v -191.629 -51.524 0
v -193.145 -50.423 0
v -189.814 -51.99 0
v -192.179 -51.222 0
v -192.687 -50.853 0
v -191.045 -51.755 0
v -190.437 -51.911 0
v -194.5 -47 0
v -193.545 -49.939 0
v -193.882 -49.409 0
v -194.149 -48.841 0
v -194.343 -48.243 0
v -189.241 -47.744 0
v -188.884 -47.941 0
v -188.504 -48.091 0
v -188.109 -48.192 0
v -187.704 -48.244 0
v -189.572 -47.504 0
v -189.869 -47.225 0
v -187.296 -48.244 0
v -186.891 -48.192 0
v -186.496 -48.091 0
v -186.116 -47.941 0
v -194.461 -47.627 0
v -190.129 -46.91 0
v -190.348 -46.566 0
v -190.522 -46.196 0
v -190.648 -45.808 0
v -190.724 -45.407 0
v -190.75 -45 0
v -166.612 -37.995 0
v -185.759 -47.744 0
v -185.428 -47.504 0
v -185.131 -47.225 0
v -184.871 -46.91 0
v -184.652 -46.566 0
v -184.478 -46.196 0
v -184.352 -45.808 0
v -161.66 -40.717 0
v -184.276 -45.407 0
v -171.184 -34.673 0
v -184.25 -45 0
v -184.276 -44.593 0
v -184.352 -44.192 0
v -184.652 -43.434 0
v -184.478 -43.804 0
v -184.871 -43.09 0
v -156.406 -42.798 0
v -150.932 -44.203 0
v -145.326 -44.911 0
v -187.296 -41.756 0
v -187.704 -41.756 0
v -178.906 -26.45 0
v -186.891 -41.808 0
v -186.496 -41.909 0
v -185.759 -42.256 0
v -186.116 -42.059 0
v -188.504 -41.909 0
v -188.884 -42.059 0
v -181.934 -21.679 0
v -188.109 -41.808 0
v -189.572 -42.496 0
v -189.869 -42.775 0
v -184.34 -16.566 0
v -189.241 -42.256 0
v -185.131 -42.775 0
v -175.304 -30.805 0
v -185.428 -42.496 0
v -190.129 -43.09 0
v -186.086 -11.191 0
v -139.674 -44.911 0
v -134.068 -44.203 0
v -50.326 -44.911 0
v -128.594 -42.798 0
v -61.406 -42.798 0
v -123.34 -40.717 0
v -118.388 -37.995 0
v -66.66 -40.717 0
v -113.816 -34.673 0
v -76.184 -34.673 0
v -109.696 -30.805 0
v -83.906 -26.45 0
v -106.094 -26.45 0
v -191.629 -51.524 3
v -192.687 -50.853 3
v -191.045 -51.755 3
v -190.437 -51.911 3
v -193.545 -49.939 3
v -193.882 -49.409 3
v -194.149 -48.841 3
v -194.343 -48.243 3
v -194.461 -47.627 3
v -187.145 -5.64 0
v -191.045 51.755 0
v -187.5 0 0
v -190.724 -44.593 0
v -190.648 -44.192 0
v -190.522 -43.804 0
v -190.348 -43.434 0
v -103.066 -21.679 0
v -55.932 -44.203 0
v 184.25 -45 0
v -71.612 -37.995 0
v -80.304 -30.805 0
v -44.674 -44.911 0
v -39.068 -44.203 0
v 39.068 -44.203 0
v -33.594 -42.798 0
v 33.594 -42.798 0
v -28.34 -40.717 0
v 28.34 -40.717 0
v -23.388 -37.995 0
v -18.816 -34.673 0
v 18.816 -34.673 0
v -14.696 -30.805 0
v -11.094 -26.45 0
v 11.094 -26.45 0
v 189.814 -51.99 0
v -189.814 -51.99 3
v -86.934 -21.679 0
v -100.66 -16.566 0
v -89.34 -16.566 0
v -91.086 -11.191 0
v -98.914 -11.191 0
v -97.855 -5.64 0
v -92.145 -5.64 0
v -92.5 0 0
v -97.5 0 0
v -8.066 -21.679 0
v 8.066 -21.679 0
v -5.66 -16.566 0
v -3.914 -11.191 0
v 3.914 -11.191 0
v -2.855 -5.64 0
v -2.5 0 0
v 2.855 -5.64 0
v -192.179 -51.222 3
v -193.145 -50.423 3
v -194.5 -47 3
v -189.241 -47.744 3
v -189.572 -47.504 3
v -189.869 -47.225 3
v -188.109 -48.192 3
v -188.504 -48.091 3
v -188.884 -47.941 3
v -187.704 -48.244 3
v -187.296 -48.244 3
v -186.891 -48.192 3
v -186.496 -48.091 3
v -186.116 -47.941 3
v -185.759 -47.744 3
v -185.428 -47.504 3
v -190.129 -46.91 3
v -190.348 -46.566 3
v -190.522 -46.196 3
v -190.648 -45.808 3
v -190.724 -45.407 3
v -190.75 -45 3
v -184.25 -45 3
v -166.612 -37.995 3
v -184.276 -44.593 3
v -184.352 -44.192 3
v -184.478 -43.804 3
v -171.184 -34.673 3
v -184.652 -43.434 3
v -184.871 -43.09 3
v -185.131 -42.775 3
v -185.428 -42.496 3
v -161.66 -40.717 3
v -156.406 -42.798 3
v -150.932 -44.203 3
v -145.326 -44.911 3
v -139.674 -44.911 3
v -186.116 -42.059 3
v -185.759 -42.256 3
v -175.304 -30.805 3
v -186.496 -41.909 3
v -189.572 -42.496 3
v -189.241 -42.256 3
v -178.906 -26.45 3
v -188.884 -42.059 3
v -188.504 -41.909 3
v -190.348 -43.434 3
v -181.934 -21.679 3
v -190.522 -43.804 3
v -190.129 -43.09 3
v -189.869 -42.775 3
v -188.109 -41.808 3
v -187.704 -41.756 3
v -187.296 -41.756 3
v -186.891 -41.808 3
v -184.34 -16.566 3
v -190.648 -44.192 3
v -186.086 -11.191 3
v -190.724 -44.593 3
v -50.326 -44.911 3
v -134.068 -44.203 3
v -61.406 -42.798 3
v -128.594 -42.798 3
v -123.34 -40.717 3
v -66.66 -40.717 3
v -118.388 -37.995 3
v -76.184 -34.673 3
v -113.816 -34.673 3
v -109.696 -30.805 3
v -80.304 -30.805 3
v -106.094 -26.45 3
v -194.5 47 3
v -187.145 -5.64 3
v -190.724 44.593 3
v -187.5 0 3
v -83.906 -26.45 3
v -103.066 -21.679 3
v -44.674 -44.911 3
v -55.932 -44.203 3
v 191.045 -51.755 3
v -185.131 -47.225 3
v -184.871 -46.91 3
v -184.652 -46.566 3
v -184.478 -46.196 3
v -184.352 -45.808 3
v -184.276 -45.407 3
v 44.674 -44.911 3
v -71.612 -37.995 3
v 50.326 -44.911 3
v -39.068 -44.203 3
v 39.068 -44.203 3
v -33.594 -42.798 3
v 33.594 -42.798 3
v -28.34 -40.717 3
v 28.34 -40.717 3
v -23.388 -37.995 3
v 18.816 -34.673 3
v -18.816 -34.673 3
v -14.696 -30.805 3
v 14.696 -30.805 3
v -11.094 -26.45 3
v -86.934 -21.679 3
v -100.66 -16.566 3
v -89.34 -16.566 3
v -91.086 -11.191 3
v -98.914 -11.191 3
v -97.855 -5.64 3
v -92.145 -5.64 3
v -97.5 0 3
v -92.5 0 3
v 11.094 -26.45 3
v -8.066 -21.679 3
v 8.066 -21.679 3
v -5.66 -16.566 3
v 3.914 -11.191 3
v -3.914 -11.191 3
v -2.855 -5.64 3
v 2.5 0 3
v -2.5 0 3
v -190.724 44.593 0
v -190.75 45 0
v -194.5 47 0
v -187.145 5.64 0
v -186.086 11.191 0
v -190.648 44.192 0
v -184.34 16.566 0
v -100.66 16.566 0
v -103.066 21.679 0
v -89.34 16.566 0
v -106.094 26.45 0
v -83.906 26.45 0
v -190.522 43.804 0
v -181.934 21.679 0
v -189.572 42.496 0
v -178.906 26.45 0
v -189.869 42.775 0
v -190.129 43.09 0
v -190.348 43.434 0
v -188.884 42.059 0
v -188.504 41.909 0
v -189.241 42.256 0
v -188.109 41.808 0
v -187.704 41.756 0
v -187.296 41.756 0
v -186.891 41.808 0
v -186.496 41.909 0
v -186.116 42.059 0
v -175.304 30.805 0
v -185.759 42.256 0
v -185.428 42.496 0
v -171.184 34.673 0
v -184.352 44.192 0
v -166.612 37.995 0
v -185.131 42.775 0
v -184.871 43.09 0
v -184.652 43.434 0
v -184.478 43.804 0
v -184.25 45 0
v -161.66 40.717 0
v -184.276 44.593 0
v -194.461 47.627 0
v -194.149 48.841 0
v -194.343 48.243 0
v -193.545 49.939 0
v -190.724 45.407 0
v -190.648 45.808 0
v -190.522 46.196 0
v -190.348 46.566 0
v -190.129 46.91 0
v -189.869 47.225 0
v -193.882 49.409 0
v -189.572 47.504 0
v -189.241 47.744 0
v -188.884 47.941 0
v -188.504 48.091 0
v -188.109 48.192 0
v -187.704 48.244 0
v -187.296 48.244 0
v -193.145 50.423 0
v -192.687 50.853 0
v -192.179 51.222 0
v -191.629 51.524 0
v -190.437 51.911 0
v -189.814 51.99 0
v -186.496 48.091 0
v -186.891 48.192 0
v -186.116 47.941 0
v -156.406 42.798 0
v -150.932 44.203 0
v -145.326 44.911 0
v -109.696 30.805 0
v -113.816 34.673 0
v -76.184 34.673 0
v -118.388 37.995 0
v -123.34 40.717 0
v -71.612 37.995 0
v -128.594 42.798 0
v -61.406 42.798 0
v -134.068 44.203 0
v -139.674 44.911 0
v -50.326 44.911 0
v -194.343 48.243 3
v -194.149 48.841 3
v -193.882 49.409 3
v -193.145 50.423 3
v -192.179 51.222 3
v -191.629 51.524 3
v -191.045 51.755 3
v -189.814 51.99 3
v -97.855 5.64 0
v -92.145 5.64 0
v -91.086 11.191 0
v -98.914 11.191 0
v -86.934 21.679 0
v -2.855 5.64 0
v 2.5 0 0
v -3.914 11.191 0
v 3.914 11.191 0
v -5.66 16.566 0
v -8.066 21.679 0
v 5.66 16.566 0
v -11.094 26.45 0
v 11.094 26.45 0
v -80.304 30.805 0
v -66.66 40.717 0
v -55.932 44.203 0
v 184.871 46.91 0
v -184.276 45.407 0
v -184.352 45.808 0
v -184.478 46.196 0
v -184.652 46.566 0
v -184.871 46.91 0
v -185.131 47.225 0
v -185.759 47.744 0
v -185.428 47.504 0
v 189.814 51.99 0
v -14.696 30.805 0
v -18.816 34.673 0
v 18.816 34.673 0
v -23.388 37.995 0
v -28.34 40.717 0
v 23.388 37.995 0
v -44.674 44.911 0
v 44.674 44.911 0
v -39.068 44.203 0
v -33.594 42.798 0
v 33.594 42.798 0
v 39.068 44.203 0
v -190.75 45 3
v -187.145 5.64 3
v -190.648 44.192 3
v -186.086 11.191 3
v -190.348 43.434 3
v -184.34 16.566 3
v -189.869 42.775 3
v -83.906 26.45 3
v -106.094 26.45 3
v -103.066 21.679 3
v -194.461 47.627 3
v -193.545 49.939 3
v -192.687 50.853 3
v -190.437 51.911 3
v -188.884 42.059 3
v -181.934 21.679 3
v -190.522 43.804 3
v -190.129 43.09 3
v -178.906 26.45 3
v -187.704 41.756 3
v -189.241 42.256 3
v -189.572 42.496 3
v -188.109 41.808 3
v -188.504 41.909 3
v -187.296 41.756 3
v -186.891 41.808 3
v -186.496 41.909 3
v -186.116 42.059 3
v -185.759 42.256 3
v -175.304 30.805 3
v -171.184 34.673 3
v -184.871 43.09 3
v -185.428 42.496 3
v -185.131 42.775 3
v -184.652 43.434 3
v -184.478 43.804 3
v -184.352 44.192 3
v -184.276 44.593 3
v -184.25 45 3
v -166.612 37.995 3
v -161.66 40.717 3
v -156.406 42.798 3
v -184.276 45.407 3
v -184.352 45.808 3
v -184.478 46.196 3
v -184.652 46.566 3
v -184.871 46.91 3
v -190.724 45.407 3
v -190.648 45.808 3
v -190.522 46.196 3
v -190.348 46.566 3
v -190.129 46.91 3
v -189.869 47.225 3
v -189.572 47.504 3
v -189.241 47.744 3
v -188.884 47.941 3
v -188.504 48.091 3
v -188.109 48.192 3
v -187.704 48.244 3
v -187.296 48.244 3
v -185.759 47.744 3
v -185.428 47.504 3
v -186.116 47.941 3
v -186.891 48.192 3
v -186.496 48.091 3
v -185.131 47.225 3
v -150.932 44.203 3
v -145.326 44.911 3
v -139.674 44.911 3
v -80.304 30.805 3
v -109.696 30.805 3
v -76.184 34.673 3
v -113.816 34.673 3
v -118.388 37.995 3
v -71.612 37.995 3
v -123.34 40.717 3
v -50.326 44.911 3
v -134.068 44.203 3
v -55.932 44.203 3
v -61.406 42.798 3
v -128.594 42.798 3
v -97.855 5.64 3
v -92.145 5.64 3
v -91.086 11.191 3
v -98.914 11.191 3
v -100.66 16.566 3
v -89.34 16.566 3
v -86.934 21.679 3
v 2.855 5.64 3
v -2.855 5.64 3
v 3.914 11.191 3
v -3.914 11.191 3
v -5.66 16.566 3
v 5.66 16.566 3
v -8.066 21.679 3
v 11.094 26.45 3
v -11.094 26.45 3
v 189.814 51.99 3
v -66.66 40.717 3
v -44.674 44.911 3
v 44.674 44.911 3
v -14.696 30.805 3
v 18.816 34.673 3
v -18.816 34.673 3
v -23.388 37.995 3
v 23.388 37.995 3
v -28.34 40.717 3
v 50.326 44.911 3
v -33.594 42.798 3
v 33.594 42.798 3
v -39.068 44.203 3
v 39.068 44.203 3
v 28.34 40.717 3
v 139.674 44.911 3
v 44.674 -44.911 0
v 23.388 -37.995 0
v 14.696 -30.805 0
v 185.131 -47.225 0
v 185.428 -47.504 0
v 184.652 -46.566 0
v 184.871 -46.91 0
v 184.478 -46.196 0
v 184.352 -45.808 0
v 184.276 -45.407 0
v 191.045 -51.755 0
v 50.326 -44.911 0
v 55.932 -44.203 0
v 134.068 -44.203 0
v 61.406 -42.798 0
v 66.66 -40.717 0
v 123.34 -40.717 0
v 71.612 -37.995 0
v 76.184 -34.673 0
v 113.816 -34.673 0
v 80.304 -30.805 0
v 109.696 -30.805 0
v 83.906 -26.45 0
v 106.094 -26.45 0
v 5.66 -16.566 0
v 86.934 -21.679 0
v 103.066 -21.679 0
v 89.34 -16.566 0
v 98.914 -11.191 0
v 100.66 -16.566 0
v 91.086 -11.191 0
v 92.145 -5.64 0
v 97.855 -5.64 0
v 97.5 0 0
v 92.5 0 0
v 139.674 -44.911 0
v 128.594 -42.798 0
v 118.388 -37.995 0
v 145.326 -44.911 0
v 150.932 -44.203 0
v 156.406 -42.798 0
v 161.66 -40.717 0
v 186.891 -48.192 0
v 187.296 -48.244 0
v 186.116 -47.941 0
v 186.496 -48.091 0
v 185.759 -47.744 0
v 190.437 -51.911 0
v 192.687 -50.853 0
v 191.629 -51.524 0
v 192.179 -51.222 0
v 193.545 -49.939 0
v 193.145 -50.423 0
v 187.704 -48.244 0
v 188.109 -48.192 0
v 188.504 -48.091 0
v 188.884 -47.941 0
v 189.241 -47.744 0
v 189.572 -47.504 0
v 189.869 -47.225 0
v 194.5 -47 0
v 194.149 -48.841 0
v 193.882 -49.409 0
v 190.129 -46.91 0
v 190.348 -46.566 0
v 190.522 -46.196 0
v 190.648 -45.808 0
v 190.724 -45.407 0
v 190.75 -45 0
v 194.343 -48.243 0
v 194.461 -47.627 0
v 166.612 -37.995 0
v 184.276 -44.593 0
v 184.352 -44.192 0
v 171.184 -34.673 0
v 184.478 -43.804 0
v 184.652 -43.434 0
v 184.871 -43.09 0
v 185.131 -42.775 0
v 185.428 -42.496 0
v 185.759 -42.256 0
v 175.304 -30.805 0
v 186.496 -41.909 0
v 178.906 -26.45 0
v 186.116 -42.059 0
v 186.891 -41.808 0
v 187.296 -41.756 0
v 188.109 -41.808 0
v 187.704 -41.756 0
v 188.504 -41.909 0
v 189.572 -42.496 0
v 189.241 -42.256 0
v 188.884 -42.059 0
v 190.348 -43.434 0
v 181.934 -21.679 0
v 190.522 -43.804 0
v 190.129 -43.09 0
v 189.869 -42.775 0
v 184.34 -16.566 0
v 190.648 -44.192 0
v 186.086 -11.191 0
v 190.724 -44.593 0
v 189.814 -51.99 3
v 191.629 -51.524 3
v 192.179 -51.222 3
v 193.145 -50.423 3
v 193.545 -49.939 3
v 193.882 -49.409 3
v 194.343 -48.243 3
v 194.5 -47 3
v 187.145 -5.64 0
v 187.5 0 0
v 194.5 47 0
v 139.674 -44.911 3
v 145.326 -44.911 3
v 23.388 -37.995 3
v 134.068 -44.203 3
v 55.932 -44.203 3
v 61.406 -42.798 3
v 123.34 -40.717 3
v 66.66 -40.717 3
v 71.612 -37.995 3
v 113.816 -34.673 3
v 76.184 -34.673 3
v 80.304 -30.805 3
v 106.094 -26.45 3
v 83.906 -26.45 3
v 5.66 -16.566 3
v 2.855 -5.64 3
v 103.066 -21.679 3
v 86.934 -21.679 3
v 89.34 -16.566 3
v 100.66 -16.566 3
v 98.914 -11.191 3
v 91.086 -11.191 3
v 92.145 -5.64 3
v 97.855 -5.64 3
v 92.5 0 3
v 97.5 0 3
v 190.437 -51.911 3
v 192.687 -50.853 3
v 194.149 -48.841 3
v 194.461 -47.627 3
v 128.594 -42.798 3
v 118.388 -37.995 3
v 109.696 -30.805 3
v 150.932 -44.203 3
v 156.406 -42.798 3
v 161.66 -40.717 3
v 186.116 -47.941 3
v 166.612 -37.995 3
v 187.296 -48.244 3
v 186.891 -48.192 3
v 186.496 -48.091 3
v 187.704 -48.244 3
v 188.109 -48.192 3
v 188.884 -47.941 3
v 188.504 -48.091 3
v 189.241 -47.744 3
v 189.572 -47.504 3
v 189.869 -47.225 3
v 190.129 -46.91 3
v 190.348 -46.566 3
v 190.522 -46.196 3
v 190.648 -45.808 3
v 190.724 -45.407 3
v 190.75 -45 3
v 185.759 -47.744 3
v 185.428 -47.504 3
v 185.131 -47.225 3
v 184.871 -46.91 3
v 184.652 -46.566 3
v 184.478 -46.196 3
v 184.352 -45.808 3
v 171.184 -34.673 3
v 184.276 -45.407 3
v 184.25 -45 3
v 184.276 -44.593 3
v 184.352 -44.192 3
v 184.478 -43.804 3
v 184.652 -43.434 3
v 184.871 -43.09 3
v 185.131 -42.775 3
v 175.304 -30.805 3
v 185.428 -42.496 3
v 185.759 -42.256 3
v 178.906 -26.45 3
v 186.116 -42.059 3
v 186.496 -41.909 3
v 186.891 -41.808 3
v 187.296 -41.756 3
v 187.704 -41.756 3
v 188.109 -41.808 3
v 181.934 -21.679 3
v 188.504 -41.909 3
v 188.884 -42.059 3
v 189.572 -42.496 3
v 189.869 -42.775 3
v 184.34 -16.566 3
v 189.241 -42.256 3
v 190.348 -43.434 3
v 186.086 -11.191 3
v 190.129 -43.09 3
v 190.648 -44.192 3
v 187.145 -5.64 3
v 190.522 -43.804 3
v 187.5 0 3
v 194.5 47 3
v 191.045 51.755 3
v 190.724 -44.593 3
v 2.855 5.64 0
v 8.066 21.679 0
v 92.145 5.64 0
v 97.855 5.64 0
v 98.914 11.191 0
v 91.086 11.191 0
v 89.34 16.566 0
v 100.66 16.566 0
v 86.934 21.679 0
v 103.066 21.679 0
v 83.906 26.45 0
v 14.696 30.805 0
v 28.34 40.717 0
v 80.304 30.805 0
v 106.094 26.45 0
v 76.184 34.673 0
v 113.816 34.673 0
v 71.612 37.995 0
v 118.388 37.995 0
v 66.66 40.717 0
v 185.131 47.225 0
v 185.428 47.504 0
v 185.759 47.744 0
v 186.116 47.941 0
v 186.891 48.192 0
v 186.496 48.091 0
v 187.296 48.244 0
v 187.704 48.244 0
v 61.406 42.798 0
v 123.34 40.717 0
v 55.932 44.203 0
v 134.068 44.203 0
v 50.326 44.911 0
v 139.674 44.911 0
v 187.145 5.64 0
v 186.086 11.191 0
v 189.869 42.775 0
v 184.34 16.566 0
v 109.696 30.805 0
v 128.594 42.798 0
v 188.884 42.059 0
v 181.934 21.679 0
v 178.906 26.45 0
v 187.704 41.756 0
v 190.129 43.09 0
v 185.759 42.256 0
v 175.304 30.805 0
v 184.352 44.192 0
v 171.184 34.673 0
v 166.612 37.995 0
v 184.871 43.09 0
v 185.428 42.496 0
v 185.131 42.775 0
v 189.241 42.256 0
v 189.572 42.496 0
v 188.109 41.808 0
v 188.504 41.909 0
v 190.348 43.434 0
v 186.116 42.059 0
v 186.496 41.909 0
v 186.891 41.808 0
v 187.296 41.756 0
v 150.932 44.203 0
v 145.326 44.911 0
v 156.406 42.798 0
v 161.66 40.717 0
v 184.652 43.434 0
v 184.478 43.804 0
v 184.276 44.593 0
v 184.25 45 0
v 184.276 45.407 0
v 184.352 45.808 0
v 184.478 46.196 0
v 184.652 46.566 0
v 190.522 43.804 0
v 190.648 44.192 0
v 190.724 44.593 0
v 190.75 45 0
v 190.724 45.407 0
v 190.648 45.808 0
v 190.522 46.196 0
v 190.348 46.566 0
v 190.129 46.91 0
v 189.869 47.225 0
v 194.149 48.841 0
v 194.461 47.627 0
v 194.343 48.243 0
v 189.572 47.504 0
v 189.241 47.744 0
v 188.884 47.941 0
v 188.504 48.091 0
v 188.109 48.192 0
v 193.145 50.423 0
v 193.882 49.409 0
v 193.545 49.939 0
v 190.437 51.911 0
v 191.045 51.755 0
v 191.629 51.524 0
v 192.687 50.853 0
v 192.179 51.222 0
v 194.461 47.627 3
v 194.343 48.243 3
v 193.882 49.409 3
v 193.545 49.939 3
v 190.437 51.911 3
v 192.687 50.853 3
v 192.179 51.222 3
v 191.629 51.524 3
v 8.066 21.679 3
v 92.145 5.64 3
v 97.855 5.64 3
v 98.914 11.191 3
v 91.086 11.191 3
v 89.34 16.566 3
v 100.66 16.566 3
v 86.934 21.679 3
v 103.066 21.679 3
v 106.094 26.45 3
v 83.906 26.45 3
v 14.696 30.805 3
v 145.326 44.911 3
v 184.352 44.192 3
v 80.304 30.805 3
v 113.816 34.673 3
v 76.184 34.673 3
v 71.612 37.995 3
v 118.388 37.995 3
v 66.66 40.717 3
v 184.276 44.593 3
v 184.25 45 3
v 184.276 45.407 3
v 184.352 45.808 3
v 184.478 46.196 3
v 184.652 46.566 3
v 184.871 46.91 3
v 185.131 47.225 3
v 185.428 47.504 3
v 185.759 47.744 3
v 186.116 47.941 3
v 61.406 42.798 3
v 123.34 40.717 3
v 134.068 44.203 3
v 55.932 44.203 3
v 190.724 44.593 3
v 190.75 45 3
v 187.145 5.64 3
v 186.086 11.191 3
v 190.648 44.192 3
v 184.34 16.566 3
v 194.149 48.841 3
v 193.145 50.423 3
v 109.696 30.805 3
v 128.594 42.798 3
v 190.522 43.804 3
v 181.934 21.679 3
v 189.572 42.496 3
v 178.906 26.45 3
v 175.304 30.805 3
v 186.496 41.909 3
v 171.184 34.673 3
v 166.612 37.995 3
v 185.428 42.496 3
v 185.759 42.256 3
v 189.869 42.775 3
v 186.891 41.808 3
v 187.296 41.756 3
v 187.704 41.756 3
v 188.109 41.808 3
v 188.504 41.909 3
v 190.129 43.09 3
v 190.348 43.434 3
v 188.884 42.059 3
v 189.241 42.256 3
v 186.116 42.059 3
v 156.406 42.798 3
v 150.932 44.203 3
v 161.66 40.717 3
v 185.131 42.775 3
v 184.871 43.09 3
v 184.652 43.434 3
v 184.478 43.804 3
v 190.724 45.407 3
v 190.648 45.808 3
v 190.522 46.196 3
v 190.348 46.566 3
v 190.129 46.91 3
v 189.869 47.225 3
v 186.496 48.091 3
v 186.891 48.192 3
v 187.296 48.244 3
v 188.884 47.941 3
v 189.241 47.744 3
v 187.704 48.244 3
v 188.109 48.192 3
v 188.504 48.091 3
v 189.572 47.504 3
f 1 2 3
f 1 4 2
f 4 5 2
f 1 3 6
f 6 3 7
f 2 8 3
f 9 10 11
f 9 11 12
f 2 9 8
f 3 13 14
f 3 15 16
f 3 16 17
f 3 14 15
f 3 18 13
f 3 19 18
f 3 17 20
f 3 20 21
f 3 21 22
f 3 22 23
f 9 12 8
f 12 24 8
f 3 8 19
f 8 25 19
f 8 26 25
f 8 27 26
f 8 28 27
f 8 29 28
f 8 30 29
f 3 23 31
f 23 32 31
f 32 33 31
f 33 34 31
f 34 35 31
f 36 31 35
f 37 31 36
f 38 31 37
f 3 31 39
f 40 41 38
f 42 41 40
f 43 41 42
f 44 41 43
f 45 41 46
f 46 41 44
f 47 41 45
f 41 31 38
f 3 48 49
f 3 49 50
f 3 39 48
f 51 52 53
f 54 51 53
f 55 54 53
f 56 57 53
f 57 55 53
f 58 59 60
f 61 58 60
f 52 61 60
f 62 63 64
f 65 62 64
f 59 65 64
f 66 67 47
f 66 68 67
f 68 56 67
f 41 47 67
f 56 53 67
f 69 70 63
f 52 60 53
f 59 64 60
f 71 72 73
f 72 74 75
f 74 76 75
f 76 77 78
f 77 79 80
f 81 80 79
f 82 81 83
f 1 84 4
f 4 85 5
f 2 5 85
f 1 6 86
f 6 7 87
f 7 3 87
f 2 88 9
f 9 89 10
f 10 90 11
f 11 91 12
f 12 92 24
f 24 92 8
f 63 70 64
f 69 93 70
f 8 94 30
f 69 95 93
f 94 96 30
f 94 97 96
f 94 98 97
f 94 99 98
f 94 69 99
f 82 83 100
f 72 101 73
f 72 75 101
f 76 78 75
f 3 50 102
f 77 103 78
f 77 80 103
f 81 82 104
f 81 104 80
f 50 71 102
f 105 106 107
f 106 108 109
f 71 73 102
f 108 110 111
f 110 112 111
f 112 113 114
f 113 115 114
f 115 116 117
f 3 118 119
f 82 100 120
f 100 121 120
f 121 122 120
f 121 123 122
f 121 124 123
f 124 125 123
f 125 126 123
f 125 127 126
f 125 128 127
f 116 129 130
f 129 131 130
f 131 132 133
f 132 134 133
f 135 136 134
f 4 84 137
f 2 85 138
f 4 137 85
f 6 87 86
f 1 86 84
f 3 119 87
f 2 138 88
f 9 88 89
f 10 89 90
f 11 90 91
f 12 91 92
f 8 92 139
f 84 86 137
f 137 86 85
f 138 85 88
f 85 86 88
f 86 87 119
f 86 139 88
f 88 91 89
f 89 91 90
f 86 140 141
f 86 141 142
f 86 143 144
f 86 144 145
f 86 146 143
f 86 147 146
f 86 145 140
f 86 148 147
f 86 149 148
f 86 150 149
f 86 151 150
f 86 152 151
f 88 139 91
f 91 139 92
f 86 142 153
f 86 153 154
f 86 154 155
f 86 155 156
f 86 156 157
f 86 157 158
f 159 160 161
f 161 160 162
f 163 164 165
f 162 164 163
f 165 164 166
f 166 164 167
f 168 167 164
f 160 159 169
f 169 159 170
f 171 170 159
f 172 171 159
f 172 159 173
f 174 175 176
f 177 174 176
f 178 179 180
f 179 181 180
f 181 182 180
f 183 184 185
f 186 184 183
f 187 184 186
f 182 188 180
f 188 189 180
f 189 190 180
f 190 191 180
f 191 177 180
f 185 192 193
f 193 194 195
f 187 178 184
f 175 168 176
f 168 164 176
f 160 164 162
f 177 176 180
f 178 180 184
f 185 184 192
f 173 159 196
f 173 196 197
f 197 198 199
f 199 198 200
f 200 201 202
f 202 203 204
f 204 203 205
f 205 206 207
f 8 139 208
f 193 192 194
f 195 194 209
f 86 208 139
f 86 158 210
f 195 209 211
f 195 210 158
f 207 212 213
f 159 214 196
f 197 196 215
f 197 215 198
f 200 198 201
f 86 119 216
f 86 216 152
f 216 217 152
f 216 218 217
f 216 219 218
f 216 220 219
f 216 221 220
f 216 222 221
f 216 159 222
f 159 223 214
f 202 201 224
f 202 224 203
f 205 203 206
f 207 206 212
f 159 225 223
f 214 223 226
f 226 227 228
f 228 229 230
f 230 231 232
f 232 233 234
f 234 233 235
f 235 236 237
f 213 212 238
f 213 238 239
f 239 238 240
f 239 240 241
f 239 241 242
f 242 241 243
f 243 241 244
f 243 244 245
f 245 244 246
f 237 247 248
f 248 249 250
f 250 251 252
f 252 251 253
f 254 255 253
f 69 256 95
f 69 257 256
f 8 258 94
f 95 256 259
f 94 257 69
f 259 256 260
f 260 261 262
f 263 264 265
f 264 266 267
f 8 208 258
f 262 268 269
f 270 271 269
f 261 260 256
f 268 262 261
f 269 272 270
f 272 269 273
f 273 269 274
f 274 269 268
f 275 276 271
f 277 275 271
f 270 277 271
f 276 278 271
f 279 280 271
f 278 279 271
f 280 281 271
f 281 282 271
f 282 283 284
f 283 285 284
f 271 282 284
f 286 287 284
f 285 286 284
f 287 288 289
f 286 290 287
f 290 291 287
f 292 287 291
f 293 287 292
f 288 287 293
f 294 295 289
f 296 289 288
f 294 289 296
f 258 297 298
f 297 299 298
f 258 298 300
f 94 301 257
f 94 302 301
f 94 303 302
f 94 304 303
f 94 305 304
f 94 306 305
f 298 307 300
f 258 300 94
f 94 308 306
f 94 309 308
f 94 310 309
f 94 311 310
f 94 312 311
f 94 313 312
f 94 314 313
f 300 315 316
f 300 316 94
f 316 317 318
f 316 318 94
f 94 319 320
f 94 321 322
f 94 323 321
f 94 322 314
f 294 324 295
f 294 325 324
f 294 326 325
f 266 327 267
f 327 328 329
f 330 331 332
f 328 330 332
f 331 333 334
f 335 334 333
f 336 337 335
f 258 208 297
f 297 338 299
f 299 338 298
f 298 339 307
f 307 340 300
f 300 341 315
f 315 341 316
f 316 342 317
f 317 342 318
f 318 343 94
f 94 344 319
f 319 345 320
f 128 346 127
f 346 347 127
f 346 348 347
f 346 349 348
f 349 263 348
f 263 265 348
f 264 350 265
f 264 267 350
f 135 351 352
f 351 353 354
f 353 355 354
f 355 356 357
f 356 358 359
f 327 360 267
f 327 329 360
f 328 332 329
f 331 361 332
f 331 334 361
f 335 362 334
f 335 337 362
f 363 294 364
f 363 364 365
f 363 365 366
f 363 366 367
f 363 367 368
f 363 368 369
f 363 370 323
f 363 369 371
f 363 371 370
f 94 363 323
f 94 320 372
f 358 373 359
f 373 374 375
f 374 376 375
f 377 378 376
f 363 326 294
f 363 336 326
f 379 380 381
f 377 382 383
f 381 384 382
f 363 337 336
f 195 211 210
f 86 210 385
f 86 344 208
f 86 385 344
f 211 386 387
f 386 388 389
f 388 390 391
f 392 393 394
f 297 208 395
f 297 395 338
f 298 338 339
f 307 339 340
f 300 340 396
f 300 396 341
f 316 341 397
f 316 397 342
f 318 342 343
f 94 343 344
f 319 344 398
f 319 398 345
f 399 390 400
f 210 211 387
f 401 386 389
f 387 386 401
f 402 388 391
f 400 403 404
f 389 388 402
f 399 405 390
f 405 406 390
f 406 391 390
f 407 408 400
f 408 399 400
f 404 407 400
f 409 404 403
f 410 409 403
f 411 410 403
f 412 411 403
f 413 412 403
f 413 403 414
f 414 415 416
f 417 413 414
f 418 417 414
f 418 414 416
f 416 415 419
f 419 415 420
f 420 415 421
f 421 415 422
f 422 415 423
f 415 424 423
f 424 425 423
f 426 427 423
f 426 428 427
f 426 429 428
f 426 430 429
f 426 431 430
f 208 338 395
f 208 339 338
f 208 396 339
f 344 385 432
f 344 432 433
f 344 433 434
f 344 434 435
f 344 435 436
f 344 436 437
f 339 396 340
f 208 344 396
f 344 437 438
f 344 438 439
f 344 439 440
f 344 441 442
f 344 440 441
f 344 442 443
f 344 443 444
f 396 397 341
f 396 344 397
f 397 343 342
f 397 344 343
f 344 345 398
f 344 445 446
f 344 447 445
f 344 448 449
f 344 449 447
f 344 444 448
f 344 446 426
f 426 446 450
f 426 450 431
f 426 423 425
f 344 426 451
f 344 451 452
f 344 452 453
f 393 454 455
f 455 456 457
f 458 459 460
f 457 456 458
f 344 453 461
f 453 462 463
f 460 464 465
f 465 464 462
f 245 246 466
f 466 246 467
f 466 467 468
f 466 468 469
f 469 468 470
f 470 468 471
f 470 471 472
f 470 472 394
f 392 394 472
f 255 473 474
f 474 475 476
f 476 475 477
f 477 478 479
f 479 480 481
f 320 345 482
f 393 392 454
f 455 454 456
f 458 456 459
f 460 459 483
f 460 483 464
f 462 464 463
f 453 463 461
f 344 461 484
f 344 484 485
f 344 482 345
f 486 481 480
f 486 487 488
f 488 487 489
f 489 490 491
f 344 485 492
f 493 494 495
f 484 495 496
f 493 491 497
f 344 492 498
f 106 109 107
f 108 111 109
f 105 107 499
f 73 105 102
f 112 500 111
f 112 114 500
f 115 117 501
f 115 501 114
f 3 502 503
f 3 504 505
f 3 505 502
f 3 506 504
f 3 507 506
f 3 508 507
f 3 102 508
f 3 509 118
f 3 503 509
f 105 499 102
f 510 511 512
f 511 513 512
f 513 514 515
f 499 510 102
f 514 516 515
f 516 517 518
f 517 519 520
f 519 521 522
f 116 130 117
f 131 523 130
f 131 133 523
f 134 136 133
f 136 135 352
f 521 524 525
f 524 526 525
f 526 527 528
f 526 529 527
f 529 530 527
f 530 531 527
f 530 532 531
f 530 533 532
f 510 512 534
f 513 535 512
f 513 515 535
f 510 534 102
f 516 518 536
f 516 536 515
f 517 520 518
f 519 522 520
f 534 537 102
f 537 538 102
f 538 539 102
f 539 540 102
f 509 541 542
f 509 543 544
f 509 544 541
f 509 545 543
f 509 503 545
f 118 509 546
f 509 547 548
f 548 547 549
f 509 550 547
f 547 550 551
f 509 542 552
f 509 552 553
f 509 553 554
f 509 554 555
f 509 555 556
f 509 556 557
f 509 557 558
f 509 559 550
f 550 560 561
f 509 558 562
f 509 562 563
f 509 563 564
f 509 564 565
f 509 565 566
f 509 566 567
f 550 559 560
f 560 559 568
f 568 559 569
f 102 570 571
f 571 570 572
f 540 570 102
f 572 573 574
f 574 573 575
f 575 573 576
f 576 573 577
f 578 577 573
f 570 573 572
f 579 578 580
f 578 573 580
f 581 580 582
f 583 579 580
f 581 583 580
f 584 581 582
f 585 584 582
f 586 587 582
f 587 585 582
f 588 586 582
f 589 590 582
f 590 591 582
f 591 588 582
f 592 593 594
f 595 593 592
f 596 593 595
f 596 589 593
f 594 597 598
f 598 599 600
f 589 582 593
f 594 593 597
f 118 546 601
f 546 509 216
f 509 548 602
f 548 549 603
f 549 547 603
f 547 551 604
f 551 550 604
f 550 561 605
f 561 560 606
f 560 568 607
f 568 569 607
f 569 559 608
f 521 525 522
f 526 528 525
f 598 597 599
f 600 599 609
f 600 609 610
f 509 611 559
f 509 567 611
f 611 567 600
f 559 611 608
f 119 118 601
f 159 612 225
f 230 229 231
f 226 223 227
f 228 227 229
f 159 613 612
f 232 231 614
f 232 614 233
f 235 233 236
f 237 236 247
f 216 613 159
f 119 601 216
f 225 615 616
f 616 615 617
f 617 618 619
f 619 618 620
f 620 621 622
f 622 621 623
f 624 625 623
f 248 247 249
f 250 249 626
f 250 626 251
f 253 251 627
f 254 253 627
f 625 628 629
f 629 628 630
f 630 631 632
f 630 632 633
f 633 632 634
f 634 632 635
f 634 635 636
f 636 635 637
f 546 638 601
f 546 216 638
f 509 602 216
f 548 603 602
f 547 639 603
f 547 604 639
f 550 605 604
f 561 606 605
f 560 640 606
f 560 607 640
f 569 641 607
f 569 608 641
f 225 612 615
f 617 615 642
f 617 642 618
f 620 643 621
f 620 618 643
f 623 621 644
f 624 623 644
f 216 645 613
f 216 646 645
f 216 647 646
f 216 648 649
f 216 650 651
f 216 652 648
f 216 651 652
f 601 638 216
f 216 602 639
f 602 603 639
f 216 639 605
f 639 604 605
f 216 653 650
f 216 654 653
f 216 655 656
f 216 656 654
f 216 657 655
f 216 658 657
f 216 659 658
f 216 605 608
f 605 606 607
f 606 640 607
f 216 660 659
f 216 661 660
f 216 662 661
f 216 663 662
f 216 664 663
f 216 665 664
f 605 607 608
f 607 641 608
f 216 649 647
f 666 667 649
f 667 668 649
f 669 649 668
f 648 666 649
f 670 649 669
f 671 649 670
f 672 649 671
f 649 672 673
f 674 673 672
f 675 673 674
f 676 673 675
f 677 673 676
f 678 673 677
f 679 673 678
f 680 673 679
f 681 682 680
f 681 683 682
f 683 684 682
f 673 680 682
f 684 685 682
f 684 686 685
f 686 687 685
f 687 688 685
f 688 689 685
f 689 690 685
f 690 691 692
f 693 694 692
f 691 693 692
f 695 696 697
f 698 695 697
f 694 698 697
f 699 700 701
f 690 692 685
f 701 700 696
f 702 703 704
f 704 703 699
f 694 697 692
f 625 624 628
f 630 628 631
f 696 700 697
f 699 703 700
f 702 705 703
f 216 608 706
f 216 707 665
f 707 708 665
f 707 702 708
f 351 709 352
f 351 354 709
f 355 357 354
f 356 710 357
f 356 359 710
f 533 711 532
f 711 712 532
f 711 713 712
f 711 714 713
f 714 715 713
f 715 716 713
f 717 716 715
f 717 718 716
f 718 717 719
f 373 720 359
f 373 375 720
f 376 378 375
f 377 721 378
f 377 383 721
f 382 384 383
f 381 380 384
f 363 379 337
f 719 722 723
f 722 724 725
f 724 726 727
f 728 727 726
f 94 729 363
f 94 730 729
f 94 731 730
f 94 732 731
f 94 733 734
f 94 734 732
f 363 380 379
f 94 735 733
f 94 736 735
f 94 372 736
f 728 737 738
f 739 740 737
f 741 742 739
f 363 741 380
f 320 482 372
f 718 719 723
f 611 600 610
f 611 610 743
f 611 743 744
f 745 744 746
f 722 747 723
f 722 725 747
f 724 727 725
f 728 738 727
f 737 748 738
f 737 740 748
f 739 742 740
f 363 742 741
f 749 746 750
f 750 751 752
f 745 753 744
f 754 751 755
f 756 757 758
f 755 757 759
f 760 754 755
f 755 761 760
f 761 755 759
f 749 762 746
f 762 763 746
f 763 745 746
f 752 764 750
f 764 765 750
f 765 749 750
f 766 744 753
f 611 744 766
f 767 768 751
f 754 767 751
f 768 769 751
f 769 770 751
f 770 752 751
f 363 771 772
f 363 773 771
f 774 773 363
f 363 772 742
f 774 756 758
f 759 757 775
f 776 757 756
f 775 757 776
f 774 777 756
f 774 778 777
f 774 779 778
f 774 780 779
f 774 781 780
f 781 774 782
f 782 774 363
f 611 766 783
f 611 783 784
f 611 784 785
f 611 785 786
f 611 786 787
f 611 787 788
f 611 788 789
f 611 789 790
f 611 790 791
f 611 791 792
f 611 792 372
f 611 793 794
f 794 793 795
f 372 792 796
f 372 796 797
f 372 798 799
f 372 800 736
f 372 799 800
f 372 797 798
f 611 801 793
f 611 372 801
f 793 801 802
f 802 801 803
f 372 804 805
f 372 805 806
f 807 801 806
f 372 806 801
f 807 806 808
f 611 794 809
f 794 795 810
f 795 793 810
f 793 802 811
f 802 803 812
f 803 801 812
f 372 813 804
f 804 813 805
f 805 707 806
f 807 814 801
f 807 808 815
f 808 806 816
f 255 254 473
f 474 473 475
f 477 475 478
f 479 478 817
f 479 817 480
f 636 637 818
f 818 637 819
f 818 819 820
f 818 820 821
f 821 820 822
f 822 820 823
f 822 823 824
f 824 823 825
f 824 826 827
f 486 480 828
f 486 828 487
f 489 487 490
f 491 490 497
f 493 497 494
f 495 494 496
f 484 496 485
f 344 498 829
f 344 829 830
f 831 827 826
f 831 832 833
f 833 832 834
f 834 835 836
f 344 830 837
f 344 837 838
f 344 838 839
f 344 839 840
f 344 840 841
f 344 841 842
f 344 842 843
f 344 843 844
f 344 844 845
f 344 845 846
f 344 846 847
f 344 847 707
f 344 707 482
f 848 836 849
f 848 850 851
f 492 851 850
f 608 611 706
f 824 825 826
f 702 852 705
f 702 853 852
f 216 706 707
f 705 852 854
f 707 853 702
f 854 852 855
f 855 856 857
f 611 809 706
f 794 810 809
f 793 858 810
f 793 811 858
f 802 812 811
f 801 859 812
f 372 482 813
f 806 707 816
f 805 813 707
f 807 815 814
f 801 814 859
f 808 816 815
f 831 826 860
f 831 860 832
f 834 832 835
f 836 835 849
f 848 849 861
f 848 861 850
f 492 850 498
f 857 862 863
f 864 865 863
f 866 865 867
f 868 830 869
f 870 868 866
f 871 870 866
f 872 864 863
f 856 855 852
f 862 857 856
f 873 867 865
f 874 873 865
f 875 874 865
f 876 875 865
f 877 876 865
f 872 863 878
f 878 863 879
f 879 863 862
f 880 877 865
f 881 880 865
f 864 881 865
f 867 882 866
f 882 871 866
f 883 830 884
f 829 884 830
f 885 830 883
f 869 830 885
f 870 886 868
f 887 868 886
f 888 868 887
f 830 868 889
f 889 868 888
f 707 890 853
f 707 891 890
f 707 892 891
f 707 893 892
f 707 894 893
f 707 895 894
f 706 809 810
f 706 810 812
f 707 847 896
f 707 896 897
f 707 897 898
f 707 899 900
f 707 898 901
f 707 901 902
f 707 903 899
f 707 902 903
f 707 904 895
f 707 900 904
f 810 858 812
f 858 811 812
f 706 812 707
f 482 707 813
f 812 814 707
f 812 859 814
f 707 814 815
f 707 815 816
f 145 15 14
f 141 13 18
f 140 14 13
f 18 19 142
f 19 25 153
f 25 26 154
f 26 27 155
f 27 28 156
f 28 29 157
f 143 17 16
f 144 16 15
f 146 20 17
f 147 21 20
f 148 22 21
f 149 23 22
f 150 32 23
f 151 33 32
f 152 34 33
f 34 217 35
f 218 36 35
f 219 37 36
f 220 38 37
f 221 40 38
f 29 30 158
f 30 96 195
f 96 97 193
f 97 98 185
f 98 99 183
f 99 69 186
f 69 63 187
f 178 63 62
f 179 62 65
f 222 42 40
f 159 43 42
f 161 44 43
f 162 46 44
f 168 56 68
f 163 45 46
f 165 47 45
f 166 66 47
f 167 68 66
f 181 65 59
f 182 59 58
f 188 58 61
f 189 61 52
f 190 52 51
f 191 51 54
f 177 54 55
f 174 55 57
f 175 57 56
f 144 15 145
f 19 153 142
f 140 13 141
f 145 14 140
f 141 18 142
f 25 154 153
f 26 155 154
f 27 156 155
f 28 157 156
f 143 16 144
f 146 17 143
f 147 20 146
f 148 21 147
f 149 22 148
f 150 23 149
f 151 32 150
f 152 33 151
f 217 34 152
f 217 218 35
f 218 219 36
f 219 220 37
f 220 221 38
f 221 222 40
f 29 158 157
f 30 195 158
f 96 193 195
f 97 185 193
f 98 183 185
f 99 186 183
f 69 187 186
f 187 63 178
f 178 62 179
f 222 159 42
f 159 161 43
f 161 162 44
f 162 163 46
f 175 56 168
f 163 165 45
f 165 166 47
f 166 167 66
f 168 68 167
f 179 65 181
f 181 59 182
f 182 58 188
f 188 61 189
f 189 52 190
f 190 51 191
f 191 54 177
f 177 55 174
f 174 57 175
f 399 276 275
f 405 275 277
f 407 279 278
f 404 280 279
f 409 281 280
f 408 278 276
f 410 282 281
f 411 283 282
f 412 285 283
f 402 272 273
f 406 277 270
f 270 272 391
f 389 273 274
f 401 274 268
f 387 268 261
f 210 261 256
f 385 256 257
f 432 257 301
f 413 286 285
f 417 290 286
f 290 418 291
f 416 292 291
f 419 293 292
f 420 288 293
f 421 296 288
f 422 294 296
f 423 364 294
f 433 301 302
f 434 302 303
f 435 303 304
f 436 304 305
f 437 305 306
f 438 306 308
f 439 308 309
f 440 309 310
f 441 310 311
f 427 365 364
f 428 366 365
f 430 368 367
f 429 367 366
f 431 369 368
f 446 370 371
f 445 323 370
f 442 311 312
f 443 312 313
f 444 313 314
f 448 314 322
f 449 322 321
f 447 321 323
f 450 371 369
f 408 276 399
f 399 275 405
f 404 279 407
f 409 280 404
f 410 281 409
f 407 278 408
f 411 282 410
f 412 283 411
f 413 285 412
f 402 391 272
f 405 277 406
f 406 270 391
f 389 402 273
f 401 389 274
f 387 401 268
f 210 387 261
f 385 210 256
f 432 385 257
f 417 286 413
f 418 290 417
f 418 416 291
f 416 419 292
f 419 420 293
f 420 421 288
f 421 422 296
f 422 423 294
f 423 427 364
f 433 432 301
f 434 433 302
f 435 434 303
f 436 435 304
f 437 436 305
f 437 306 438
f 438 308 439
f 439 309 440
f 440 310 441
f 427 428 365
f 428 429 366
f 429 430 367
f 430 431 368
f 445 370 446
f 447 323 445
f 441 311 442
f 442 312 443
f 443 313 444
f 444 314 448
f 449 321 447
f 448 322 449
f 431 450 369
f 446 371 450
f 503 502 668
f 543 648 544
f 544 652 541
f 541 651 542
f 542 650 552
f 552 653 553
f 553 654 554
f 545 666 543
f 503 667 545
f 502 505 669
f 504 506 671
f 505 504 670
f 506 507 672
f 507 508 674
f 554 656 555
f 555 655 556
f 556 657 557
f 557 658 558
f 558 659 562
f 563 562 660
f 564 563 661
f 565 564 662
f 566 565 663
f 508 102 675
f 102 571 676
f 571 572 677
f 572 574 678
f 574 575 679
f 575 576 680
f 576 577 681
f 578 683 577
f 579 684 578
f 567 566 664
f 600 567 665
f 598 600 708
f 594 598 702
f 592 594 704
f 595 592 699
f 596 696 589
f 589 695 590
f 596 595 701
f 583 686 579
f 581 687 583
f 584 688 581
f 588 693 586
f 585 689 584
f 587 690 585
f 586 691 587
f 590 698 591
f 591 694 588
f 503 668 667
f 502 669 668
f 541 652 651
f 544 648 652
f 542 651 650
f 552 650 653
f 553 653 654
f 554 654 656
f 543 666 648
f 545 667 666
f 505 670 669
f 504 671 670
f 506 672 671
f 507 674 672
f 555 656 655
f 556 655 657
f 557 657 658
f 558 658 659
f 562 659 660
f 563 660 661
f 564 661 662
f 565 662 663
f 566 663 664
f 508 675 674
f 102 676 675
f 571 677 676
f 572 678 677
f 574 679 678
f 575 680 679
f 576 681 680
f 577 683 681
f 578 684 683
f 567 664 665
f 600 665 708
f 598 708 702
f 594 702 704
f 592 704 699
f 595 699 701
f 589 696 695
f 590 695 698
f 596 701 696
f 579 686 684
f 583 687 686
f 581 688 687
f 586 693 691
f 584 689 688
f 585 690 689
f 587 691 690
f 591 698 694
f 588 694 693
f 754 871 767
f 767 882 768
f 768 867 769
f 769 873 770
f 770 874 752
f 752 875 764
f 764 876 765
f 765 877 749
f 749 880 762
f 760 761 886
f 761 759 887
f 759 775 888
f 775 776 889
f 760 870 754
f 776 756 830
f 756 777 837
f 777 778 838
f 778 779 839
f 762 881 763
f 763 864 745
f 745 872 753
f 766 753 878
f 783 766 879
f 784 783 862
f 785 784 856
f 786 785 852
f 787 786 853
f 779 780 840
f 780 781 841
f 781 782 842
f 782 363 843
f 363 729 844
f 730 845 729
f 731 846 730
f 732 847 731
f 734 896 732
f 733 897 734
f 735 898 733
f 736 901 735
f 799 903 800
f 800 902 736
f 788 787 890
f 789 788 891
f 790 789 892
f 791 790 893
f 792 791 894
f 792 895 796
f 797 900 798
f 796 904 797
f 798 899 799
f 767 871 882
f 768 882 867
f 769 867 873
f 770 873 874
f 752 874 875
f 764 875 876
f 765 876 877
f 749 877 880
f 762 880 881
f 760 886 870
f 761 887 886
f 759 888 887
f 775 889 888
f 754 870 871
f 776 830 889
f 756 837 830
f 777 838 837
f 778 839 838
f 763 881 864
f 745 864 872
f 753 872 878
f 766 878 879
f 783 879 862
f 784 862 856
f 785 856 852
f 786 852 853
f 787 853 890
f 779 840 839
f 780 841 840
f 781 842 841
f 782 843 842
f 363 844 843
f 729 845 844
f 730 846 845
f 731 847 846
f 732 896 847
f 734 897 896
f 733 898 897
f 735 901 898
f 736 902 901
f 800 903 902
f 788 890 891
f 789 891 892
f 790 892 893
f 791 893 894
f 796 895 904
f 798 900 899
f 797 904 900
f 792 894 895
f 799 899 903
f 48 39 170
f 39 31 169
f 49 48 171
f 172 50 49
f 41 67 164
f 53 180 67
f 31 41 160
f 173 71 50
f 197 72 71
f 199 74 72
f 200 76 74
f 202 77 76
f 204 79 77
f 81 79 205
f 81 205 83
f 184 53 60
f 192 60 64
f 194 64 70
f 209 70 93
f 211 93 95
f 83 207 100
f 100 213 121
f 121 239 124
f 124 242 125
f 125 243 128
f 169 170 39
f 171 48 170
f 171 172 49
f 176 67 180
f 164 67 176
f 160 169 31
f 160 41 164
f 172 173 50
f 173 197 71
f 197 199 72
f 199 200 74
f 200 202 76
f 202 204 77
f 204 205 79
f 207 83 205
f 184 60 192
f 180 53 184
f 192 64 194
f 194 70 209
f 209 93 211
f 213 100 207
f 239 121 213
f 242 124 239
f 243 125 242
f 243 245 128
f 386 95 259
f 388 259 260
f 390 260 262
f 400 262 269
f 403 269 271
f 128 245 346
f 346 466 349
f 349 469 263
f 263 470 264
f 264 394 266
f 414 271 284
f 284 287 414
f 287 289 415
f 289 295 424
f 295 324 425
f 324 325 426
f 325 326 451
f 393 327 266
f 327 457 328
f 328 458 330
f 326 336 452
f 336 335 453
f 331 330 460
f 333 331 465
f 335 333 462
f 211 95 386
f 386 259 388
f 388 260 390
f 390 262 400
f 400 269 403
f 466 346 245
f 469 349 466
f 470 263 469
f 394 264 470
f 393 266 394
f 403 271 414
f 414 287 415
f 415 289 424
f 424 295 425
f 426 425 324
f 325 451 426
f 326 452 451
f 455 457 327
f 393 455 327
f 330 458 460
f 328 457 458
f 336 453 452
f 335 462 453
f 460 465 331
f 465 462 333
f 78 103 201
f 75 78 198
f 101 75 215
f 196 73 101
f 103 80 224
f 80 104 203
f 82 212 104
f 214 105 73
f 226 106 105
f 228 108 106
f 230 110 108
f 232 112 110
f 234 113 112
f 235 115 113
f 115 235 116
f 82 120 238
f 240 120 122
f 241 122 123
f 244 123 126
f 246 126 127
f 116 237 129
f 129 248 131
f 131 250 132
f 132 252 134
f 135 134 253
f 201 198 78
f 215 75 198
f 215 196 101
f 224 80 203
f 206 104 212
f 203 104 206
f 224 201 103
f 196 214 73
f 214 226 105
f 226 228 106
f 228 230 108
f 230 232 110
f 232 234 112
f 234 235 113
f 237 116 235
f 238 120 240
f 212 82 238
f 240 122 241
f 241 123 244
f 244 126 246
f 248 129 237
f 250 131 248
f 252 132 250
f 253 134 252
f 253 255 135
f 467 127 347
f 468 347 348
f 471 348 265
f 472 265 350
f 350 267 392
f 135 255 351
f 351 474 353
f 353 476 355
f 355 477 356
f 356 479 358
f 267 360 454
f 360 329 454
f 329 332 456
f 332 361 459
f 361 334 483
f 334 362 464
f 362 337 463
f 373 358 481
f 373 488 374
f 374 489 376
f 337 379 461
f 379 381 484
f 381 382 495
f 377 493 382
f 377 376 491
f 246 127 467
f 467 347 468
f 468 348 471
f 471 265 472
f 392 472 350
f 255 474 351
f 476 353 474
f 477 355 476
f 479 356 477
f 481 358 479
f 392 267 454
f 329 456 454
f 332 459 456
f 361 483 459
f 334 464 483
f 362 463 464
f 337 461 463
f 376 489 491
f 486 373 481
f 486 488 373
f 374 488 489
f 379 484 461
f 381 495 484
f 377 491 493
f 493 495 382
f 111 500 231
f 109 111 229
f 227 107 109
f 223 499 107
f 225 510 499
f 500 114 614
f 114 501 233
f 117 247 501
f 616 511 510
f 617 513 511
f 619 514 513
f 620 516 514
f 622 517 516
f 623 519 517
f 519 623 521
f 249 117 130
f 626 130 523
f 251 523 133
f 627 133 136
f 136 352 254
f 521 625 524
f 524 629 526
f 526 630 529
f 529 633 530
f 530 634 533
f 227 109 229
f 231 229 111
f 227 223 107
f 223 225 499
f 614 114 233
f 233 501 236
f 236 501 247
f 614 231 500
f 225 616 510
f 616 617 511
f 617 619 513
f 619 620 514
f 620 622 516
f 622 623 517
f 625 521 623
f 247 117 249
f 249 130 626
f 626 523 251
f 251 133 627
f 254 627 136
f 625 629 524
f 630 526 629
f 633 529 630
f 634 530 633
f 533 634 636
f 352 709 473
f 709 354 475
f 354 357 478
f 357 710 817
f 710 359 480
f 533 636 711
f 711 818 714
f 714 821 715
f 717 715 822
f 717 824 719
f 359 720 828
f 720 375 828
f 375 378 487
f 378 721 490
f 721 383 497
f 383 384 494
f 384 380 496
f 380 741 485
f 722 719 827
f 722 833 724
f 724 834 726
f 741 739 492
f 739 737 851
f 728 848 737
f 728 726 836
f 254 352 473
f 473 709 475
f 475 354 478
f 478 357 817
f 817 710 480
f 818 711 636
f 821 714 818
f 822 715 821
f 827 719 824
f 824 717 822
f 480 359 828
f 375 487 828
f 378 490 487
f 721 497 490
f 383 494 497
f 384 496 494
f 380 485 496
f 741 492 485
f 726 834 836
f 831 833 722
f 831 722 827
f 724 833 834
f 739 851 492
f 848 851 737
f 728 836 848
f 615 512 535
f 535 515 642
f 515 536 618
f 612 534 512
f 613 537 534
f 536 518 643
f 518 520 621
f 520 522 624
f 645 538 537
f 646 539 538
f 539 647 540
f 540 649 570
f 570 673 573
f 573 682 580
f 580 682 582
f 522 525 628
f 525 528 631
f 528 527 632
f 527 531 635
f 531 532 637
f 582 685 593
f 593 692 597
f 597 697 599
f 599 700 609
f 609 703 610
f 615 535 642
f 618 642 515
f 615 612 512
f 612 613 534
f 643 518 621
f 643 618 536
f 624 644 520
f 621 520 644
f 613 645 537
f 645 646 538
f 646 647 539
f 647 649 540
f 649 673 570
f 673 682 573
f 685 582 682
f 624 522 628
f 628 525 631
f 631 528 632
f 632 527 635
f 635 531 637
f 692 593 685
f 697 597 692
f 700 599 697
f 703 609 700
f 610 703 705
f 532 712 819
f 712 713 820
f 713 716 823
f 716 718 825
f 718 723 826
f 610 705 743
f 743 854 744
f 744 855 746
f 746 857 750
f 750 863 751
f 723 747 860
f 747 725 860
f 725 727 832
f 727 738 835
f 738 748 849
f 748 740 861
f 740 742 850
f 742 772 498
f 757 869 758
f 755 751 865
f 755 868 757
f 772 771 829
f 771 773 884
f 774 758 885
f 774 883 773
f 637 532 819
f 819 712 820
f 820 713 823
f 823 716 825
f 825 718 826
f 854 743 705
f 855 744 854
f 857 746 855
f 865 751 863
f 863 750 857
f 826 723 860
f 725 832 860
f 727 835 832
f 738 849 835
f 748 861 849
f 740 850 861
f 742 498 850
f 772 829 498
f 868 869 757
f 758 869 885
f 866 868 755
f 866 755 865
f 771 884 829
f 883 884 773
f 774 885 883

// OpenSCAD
$fn = 50;

difference() {
	union() {
		hull() {
			translate(v = [-189.5, 47.0, 0]) {
				cylinder(h = 3, r = 5);
			}
			translate(v = [189.5, 47.0, 0]) {
				cylinder(h = 3, r = 5);
			}
			translate(v = [-189.5, -47.0, 0]) {
				cylinder(h = 3, r = 5);
			}
			translate(v = [189.5, -47.0, 0]) {
				cylinder(h = 3, r = 5);
			}
		}
	}
	union() {
		translate(v = [-187.5, -45.0, -100.0]) {
			cylinder(h = 200, r = 3.25);
		}
		translate(v = [-187.5, 45.0, -100.0]) {
			cylinder(h = 200, r = 3.25);
		}
		translate(v = [187.5, -45.0, -100.0]) {
			cylinder(h = 200, r = 3.25);
		}
		translate(v = [187.5, 45.0, -100.0]) {
			cylinder(h = 200, r = 3.25);
		}
		translate(v = [-187.5, -45.0, -100.0]) {
			cylinder(h = 200, r = 1.8);
		}
		translate(v = [-187.5, 45.0, -100.0]) {
			cylinder(h = 200, r = 1.8);
		}
		translate(v = [187.5, -45.0, -100.0]) {
			cylinder(h = 200, r = 1.8);
		}
		translate(v = [187.5, 45.0, -100.0]) {
			cylinder(h = 200, r = 1.8);
		}
		translate(v = [-142.5, 0, 0.0]) {
			cylinder(h = 3, r = 45.0);
		}
		translate(v = [-47.5, 0, 0.0]) {
			cylinder(h = 3, r = 45.0);
		}
		translate(v = [47.5, 0, 0.0]) {
			cylinder(h = 3, r = 45.0);
		}
		translate(v = [142.5, 0, 0.0]) {
			cylinder(h = 3, r = 45.0);
		}
	}
}
